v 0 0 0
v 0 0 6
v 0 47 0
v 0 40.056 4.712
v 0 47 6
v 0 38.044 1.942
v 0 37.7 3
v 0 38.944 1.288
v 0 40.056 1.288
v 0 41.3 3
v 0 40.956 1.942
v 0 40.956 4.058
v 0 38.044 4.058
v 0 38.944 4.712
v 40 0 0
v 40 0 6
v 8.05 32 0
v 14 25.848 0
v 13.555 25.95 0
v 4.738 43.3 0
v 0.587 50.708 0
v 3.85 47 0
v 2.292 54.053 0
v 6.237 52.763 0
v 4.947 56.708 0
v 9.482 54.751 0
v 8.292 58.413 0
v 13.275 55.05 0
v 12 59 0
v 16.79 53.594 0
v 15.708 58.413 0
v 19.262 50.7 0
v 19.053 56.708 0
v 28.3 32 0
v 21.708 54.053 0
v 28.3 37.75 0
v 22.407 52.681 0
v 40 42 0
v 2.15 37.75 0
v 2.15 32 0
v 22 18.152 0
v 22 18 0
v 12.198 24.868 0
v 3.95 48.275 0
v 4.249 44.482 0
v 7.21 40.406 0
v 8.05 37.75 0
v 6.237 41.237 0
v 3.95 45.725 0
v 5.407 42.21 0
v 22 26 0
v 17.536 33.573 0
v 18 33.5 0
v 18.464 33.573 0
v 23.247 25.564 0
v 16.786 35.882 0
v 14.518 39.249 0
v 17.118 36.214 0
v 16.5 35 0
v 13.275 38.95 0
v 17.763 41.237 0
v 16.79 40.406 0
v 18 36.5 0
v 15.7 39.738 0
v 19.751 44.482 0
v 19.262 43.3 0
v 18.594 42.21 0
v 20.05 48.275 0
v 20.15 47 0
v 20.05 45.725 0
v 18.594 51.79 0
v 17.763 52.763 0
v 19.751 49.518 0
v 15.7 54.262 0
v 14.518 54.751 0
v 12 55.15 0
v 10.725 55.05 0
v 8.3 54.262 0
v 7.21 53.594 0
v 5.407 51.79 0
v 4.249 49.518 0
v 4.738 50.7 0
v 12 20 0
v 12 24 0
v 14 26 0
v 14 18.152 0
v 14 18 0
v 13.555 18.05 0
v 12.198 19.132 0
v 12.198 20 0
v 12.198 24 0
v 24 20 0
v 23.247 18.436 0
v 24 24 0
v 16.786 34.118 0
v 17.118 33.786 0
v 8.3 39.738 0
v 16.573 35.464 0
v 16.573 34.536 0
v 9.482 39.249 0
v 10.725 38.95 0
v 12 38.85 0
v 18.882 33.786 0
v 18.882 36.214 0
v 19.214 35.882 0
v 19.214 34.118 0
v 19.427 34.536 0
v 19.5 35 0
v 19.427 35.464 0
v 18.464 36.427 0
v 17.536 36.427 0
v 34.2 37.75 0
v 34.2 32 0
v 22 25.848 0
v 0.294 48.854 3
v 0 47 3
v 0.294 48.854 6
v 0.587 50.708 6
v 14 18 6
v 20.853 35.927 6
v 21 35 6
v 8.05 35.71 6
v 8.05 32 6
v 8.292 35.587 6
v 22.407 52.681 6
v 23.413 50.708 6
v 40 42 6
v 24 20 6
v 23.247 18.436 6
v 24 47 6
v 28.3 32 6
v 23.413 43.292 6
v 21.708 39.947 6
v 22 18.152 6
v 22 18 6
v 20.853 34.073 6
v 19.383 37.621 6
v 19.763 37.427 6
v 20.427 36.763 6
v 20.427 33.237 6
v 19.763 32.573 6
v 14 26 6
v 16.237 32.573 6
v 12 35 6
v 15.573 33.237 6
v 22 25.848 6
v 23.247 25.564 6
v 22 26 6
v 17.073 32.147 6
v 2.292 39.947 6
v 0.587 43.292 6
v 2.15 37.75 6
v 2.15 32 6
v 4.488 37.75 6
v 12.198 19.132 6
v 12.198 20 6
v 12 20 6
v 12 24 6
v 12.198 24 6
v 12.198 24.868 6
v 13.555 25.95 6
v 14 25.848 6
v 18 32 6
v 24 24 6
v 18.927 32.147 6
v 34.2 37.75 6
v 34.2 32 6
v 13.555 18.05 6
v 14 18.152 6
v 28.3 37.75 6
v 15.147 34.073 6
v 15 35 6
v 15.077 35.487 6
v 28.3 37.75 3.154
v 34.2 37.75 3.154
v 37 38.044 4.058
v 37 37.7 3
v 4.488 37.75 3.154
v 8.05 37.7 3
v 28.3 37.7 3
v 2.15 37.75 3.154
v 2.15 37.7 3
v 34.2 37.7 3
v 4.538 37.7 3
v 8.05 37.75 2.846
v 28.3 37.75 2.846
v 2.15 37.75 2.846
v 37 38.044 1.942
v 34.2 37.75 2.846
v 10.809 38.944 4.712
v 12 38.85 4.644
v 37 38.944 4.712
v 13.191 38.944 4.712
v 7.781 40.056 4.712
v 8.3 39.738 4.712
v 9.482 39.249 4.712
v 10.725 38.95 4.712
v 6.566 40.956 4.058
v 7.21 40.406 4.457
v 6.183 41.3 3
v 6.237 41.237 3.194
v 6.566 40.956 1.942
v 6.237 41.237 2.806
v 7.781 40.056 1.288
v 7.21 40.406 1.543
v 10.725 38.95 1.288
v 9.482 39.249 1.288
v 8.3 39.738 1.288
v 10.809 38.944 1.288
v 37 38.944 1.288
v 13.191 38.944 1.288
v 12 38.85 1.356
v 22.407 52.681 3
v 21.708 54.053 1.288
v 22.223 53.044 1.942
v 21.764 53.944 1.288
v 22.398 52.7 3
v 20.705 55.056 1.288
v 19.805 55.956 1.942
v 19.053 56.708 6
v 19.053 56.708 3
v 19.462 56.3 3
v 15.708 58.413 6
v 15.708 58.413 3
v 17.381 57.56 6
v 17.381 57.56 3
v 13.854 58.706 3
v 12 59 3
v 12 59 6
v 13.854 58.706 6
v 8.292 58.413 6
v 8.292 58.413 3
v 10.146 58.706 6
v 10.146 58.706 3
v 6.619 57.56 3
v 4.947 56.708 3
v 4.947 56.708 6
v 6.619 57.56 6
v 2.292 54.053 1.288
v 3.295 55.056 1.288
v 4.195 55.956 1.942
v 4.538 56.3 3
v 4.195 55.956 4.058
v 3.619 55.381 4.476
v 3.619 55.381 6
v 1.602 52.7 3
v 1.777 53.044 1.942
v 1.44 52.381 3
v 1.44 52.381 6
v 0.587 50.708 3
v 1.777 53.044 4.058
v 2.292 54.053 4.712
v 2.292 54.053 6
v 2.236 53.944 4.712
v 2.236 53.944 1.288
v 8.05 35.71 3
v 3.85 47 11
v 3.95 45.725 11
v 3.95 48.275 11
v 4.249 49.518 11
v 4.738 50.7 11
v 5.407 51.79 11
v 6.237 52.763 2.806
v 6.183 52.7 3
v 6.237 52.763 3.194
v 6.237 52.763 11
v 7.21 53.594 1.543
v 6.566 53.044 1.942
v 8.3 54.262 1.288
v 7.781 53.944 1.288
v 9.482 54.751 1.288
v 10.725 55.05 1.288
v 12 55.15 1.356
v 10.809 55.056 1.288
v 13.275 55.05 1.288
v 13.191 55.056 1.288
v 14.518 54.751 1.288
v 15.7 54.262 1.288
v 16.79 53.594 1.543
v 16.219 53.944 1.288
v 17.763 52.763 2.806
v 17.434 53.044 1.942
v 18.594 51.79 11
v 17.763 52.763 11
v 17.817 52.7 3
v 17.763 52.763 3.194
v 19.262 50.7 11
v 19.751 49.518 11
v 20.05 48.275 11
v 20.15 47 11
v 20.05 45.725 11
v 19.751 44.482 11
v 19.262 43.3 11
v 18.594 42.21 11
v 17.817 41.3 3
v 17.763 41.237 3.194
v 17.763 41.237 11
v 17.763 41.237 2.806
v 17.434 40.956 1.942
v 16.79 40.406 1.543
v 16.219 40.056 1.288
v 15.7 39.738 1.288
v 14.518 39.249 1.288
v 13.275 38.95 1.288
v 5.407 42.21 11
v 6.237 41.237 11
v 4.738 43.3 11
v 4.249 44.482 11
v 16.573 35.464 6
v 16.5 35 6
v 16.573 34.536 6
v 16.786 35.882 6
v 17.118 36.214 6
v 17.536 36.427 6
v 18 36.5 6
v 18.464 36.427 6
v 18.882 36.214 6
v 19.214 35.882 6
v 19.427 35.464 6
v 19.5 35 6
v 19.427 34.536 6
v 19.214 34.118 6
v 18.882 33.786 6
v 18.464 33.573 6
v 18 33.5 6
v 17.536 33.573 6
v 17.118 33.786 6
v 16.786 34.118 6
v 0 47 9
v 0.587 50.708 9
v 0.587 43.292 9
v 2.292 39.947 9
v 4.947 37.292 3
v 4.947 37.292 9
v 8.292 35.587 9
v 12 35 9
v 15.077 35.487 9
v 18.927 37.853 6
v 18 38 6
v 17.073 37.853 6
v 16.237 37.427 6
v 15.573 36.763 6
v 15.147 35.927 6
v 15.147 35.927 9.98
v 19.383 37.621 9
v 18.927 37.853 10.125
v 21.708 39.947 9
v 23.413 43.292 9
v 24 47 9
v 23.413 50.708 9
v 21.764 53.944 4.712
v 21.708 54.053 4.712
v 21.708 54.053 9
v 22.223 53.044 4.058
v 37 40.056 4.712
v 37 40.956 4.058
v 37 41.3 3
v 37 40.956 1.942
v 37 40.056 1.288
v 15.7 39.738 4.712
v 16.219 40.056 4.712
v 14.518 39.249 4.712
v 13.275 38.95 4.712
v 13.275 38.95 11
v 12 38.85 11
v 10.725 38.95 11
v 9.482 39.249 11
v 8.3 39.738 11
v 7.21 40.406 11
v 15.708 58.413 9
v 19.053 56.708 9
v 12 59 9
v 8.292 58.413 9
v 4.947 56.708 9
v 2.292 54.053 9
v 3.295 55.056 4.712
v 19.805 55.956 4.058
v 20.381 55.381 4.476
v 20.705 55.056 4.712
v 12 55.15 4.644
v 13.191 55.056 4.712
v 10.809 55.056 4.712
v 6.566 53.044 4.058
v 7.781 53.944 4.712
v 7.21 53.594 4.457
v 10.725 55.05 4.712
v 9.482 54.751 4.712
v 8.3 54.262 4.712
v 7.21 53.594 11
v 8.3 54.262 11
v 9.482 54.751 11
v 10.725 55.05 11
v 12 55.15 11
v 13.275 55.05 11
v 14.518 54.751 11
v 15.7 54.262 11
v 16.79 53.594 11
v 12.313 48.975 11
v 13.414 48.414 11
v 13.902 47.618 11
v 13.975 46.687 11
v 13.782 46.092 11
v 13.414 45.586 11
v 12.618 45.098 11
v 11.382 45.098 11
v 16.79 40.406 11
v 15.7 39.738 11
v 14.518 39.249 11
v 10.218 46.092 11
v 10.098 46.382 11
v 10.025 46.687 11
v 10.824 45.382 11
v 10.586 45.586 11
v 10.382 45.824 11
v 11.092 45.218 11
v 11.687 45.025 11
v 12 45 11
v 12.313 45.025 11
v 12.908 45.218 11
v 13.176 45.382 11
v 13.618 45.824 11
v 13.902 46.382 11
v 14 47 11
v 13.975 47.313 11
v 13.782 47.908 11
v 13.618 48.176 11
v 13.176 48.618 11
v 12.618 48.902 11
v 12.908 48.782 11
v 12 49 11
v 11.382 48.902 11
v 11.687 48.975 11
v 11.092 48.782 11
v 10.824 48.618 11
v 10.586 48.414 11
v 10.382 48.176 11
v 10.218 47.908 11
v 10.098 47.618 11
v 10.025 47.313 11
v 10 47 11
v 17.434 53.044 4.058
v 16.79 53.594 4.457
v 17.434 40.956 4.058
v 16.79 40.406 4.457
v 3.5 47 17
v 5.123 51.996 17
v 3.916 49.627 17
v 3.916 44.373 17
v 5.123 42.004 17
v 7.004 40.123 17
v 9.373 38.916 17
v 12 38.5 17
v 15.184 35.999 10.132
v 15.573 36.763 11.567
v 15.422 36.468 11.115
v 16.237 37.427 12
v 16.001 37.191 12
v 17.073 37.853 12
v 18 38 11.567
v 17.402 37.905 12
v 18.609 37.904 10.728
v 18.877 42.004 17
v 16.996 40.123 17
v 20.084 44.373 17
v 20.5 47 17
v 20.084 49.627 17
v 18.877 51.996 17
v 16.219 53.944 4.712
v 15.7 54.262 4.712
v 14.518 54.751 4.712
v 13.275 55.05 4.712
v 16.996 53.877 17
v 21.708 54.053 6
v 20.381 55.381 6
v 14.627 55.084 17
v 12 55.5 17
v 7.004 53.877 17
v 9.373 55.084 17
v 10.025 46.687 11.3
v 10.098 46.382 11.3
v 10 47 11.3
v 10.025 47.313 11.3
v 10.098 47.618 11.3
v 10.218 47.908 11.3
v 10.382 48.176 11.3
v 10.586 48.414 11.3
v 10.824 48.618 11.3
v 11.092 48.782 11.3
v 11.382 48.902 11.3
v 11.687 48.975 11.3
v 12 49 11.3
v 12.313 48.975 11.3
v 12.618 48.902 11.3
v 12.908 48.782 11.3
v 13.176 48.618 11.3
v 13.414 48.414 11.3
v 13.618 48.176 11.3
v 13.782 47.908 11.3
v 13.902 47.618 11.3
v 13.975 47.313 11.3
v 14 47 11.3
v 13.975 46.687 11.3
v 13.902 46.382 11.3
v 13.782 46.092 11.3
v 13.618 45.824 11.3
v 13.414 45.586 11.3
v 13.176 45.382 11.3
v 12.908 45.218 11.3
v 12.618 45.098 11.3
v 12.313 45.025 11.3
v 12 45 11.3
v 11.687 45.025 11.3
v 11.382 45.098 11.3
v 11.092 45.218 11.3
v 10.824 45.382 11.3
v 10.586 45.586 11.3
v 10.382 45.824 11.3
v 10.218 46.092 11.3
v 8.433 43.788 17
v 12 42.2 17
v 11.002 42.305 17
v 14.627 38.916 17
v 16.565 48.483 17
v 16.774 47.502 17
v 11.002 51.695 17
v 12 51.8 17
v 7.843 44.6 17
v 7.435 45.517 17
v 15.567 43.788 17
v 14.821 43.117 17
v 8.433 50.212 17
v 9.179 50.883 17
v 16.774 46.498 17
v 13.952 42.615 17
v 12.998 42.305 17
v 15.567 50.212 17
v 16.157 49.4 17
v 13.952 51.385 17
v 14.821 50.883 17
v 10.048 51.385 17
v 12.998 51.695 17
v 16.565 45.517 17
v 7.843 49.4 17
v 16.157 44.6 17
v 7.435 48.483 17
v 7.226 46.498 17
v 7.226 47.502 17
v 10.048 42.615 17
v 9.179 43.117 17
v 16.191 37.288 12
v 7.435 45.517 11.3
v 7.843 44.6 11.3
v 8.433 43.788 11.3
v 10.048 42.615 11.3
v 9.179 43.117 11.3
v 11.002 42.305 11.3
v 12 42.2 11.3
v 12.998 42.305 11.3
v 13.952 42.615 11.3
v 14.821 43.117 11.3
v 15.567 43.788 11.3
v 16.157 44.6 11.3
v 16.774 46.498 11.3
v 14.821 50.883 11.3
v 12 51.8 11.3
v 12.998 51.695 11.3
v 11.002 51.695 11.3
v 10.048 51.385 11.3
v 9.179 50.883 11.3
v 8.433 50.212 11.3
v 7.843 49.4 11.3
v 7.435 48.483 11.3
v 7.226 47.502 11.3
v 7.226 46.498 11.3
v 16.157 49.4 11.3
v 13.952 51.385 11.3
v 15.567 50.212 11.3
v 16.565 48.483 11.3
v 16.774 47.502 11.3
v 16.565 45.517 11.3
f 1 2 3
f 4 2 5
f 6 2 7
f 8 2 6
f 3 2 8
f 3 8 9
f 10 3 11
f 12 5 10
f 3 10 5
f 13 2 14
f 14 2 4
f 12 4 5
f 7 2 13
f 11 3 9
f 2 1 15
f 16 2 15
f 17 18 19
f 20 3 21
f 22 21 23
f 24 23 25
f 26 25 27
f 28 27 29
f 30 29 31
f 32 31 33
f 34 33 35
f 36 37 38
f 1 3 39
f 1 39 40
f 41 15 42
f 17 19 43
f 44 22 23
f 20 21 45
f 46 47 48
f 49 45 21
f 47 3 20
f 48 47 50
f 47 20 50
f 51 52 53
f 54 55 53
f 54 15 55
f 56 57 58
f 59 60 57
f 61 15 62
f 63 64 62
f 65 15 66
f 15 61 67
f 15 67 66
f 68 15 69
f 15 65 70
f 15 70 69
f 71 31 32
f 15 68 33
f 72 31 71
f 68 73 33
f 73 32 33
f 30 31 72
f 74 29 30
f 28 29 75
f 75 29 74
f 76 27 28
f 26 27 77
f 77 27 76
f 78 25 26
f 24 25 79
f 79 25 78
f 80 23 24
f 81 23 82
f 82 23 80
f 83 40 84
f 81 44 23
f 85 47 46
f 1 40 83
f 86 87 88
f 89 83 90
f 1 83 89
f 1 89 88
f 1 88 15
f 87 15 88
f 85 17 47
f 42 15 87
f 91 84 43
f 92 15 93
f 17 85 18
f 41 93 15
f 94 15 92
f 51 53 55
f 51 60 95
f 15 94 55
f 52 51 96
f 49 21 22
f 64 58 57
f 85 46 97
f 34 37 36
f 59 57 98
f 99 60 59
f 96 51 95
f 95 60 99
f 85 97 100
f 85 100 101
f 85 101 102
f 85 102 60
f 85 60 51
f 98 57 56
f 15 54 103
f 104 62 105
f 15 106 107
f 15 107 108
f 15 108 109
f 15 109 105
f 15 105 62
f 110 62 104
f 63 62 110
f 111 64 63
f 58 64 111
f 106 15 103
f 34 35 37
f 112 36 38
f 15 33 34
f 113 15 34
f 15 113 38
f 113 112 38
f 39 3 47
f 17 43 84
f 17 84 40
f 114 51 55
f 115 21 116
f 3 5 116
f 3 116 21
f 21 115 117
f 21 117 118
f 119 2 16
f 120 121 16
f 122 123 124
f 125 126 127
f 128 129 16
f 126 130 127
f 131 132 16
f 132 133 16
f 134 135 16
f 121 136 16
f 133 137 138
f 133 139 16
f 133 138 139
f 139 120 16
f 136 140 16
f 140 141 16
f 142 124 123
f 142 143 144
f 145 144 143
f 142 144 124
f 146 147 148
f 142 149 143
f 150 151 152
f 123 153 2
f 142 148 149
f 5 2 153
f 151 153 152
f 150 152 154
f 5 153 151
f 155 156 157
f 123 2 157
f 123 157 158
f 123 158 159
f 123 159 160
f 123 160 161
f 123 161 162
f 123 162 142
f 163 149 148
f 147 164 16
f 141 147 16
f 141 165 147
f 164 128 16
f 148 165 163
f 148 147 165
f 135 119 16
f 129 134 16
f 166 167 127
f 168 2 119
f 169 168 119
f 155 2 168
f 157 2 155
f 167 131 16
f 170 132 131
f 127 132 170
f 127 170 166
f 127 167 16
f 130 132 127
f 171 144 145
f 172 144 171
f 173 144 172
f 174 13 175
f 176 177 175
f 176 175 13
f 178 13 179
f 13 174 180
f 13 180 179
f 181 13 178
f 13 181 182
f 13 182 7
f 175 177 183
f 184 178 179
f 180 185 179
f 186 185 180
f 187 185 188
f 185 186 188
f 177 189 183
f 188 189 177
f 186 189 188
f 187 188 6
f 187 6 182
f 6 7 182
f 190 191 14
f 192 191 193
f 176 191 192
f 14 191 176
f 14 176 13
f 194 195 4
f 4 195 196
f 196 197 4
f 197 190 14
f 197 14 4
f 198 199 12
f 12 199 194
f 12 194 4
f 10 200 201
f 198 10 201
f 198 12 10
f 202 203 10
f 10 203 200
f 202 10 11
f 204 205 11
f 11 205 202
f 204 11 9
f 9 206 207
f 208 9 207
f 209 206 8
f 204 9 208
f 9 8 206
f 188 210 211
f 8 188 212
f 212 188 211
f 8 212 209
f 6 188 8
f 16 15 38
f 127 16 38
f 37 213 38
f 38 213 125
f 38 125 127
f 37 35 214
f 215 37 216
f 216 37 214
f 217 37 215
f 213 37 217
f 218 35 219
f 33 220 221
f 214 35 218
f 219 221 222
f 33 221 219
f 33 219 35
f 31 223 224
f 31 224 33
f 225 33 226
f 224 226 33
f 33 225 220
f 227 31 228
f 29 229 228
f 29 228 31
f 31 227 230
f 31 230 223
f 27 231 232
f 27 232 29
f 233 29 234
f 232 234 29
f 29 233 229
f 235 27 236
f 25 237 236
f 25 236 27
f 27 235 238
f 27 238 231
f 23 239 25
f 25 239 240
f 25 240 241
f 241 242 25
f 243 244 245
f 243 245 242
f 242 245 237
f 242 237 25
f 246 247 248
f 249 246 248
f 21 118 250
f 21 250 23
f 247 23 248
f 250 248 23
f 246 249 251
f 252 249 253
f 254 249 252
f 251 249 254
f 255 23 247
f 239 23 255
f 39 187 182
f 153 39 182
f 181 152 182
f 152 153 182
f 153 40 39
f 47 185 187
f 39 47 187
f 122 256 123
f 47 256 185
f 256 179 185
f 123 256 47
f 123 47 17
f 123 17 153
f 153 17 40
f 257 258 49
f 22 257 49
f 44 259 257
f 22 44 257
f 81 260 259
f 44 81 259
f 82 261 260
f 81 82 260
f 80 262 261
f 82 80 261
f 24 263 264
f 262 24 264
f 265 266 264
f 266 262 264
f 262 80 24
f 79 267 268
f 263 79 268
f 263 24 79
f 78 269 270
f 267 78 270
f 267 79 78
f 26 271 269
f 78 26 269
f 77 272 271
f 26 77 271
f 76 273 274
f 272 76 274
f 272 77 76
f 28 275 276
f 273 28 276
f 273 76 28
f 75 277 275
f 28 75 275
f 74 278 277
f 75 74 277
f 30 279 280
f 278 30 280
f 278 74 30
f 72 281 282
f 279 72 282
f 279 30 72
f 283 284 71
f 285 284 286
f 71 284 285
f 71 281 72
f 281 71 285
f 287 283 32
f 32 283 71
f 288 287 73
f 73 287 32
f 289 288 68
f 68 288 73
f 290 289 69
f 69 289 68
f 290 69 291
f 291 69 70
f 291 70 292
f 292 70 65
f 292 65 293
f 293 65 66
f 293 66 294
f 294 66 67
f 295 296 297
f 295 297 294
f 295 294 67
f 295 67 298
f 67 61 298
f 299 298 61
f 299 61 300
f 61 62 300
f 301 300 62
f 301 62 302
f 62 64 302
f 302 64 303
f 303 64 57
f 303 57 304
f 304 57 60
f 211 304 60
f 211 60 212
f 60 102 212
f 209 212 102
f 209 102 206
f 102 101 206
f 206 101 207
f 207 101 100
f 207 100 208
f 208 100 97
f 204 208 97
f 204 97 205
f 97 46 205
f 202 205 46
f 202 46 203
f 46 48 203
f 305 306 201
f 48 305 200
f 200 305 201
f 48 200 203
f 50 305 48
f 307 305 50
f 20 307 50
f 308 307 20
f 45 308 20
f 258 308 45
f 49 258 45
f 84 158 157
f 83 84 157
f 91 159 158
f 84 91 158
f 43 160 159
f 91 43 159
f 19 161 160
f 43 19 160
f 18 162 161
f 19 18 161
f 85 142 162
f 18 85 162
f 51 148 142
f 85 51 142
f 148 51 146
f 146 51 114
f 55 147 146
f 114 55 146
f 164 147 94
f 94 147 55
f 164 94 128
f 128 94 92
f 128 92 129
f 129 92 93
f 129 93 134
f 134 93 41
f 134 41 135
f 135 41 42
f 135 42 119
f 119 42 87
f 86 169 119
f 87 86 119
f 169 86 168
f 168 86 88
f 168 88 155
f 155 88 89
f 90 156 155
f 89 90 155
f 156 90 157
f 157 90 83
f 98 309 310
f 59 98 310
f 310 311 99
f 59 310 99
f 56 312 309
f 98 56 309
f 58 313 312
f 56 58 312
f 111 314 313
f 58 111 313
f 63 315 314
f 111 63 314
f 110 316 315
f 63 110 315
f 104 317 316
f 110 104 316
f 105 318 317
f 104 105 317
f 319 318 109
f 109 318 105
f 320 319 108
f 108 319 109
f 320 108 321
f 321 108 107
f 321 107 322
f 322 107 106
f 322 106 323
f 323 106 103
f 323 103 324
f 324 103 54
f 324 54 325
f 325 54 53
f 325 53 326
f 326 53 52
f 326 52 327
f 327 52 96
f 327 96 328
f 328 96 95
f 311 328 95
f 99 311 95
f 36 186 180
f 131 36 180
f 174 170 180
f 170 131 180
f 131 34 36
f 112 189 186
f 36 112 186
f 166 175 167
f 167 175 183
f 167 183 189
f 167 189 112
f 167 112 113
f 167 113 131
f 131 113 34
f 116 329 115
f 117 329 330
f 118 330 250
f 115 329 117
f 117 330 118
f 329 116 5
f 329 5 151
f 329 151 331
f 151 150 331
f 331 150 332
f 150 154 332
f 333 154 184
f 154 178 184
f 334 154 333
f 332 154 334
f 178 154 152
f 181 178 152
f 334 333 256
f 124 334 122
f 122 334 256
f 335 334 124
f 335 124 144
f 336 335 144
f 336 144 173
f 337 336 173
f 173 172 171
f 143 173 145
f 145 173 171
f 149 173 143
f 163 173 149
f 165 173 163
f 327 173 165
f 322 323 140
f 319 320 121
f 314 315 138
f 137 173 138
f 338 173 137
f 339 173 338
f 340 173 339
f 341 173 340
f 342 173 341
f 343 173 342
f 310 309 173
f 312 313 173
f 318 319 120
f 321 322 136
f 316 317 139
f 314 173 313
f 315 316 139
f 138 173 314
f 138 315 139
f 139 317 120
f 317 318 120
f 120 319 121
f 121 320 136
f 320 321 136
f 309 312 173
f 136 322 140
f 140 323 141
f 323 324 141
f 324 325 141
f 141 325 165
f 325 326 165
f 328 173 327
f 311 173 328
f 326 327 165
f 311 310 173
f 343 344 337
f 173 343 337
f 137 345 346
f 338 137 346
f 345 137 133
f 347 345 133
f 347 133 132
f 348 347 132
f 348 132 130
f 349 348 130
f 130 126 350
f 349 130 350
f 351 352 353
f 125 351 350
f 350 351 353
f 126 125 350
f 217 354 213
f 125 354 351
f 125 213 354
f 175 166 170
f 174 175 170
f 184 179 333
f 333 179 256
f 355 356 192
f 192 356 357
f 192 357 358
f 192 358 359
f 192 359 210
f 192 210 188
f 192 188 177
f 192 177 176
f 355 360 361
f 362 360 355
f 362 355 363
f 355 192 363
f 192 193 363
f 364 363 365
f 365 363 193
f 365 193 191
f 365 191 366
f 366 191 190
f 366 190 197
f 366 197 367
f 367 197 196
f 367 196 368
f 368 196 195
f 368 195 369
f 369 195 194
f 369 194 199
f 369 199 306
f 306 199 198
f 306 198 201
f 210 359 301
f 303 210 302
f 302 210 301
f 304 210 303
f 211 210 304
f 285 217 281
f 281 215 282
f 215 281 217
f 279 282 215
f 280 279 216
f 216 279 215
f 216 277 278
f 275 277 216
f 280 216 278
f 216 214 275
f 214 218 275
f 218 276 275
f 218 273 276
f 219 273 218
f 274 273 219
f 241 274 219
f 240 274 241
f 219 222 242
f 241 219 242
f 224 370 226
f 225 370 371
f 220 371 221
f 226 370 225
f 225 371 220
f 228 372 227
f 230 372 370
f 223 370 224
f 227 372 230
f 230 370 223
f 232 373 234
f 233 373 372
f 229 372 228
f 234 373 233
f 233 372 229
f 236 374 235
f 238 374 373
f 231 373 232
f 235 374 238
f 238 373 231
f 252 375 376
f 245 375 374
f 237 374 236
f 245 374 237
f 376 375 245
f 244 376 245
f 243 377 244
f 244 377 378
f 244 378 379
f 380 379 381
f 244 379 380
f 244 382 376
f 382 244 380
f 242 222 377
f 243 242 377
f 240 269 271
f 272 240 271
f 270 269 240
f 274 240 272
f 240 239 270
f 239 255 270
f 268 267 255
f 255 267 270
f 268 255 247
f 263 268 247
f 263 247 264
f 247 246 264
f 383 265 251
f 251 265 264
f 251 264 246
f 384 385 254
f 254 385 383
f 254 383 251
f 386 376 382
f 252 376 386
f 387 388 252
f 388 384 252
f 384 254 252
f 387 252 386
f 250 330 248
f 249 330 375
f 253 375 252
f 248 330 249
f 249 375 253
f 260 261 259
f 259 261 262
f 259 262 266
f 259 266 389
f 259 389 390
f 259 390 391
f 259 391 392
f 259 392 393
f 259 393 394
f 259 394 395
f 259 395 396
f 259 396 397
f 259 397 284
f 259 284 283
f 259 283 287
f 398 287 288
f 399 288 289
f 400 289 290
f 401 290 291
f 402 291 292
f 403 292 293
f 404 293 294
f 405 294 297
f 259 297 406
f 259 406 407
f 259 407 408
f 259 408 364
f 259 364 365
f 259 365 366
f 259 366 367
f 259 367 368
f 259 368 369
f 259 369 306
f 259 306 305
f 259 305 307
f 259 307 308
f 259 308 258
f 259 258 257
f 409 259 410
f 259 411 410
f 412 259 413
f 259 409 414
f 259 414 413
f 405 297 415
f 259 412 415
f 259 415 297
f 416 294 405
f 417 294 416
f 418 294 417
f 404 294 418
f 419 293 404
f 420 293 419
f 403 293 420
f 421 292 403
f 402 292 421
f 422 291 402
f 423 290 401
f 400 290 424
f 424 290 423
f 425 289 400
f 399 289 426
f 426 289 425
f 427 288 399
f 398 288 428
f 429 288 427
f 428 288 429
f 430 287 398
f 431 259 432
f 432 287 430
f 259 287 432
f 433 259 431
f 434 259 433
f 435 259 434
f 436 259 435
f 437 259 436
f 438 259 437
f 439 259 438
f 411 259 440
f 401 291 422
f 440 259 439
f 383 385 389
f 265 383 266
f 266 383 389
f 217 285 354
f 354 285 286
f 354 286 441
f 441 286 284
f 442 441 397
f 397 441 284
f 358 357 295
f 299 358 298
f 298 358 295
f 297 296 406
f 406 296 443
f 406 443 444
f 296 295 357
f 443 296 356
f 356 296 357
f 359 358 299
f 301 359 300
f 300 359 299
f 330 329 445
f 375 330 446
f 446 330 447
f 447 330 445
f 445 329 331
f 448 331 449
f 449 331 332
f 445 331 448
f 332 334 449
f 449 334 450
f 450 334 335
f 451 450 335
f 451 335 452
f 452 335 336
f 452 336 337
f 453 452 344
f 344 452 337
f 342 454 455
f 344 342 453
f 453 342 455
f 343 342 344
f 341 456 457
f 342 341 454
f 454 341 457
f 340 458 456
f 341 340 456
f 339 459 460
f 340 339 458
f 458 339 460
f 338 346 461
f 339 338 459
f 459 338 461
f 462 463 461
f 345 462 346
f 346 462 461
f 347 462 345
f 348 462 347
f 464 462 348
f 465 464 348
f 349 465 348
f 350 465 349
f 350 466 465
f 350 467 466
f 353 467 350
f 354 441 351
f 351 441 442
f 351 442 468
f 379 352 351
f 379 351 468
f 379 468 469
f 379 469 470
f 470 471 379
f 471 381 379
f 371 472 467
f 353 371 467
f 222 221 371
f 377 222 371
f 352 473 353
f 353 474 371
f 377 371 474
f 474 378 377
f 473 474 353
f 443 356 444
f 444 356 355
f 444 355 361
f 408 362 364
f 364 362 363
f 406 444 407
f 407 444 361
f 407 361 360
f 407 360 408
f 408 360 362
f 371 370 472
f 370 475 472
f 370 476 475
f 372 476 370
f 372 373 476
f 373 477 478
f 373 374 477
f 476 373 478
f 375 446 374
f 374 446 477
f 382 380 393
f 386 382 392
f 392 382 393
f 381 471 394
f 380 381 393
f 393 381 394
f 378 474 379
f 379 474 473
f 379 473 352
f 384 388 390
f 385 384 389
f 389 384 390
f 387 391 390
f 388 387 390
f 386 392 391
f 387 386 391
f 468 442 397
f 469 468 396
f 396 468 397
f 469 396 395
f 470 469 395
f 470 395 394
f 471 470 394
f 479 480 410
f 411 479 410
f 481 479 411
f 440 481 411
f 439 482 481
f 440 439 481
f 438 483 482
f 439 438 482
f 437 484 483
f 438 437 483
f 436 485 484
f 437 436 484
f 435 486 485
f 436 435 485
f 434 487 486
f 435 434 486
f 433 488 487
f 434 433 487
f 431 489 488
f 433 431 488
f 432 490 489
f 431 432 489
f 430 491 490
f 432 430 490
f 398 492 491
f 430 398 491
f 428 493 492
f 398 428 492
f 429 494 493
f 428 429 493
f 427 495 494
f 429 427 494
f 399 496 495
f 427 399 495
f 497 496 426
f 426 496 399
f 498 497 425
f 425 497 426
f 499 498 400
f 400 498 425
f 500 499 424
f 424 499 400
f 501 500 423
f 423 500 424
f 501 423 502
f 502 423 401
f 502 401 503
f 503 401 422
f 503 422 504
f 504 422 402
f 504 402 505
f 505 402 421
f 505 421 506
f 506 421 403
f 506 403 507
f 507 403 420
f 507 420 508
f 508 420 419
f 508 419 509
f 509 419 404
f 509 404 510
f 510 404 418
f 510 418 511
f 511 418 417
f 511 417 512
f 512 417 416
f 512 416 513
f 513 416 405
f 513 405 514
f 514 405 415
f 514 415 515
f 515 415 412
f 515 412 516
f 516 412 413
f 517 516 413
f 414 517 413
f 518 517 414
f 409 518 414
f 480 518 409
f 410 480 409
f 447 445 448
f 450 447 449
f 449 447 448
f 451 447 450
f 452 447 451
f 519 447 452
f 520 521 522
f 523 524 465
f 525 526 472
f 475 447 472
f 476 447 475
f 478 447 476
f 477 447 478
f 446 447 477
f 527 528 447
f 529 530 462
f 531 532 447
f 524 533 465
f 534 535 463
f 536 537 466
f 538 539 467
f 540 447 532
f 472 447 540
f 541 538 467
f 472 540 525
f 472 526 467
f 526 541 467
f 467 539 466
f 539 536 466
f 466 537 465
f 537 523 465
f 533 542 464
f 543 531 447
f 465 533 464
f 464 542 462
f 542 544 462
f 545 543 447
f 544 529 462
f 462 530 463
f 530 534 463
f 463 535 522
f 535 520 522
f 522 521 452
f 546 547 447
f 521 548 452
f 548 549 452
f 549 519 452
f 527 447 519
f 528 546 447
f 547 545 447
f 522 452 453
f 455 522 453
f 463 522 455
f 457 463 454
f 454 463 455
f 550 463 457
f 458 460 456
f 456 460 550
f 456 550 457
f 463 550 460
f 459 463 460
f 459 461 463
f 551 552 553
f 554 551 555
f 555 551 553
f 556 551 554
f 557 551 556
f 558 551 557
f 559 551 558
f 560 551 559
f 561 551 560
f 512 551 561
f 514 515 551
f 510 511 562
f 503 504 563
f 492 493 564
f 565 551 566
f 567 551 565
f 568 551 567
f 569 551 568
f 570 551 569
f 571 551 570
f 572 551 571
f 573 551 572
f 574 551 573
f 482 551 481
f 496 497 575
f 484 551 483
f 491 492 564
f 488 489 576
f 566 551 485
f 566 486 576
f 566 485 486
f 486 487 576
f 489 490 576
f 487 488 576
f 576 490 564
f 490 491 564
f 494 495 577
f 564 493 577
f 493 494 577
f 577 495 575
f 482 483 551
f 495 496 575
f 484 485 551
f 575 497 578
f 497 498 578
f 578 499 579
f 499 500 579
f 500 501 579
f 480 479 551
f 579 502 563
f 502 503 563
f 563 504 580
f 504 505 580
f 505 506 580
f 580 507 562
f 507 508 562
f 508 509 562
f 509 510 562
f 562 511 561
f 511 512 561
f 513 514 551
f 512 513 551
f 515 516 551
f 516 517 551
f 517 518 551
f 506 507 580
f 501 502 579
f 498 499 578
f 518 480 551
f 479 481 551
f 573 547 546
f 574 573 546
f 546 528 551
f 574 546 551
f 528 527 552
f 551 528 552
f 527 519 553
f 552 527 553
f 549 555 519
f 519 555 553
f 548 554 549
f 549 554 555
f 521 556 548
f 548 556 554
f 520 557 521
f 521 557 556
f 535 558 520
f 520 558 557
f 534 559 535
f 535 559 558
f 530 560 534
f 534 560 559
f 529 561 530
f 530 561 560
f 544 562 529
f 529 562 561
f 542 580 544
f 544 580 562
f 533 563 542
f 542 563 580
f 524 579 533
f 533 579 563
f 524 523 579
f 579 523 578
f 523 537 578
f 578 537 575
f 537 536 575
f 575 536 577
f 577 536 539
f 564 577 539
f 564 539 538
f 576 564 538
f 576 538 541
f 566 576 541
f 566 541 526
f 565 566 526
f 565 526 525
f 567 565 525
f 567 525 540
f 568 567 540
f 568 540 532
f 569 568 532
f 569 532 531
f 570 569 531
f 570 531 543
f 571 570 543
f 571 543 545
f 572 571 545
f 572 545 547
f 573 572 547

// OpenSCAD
  outerD = 24;
  extruderD = 16;

  sideLong = 47;
  sideShort = 42;
  width=40;



module hotend_mounting(d) { // The Printrbot Simple's mounting plate,
			   // minus mounting slots.


  difference() {

    // The overall baseplate
    union() {
      cube([10,sideLong,d]);
      cube([width, sideShort,d]);
      translate([outerD/2,sideLong,0]) cylinder(r=outerD/2, h=d, $fn=20);
      difference() {
	linear_extrude(height=d) polygon(points=[ [outerD/2, sideLong+outerD/2], [width,sideShort], [0,sideShort]]);
#	translate([outerD/2, sideLong, 0]) cylinder(r=extruderD/2, h=d);
      }
    }


    // Extruder cutout
    translate([outerD/2, sideLong, 0]) cylinder(r=extruderD/2, h=d);

    // mounting holes
    translate([2.15, 32,0]) cube([5.9,5.75,6]);
    translate([28.3, 32,0]) cube([5.9,5.75,6]);

    // screw for mounting
    translate([18,35,0]) cylinder(r=3/2,h=6, $fn=20);
    

    // I have no idea what this is
    translate([12,18,0])
    union() {
      translate([0,2,0]) cube([12,4,6]);
      translate([2,0,0]) cube([8,8,6]);
      for (i = [0,1]) {
	for (j = [0,1]) {
	  translate([2+i*8, 2+j*4,0]) cylinder(r=2,h=6);
	}
      }
    }
  }
}


module hotend_negative() {
  union() {
    translate([0, 0, -4]) cylinder(r=2, h=15, $fn=40);	// socket for the Ubis hot end
    translate([0, 0, -4]) cylinder(r=8.15, h=12, $fn=40);	// socket for the Ubis hot end
    translate([0, 0, 8.3]) cylinder(r=9.6/2, h=30, $fn=30);   // hole for the M5 push fitting
    rotate([90, 0, 0]) translate([7.5, 0, -15]) cylinder(r=1.8, h=40, $fn=10);	// hot end screw
    rotate([90, 0, 0]) translate([-7.5, 0, -15]) cylinder(r=1.8, h=40, $fn=10);	// hot end screw
  }

}


module hotend_with_feed() { // This needs a clear 27x27x6 footprint at the edge to work with.
  cubeside=24;


  rotate([0,0,90])
  translate([0,0,3])
  difference() {
    union(){
      hull() {	
	//	cube([cubeside, cubeside, 6], center=true);	// bump for the tube fitting
	cylinder(r=12, h=6, $fn=20);
	translate([0, 0, 6]) cylinder(r=8.5, h=8, $fn=20);
      }
    }

    hotend_negative();
    /*
    translate([0, 0, -4]) cylinder(r=2, h=15, $fn=40);	// socket for the Ubis hot end
    translate([0, 0, -4]) cylinder(r=8.15, h=12, $fn=40);	// socket for the Ubis hot end
    translate([0, 0, 8.3]) cylinder(r=9.6/2, h=30, $fn=30);   // hole for the M5 push fitting
    rotate([90, 0, 0]) translate([7.5, 0, -15]) cylinder(r=1.8, h=40, $fn=10);	// hot end screw
    rotate([90, 0, 0]) translate([-7.5, 0, -15]) cylinder(r=1.8, h=40, $fn=10);	// hot end screw
    */
  }
}

difference() {
  union() {
    hotend_mounting(6);
    translate([outerD/2,sideLong,0]) hotend_with_feed();
  }

  translate([outerD/2,sideLong,0]) 
    rotate([0,0,90])
    translate([0,0,3])
    hotend_negative();

  // give a slot for the nut to hold the thing down
  // screw for mounting
  translate([18,35,6]) cylinder(r=3,h=6, $fn=20);

}
